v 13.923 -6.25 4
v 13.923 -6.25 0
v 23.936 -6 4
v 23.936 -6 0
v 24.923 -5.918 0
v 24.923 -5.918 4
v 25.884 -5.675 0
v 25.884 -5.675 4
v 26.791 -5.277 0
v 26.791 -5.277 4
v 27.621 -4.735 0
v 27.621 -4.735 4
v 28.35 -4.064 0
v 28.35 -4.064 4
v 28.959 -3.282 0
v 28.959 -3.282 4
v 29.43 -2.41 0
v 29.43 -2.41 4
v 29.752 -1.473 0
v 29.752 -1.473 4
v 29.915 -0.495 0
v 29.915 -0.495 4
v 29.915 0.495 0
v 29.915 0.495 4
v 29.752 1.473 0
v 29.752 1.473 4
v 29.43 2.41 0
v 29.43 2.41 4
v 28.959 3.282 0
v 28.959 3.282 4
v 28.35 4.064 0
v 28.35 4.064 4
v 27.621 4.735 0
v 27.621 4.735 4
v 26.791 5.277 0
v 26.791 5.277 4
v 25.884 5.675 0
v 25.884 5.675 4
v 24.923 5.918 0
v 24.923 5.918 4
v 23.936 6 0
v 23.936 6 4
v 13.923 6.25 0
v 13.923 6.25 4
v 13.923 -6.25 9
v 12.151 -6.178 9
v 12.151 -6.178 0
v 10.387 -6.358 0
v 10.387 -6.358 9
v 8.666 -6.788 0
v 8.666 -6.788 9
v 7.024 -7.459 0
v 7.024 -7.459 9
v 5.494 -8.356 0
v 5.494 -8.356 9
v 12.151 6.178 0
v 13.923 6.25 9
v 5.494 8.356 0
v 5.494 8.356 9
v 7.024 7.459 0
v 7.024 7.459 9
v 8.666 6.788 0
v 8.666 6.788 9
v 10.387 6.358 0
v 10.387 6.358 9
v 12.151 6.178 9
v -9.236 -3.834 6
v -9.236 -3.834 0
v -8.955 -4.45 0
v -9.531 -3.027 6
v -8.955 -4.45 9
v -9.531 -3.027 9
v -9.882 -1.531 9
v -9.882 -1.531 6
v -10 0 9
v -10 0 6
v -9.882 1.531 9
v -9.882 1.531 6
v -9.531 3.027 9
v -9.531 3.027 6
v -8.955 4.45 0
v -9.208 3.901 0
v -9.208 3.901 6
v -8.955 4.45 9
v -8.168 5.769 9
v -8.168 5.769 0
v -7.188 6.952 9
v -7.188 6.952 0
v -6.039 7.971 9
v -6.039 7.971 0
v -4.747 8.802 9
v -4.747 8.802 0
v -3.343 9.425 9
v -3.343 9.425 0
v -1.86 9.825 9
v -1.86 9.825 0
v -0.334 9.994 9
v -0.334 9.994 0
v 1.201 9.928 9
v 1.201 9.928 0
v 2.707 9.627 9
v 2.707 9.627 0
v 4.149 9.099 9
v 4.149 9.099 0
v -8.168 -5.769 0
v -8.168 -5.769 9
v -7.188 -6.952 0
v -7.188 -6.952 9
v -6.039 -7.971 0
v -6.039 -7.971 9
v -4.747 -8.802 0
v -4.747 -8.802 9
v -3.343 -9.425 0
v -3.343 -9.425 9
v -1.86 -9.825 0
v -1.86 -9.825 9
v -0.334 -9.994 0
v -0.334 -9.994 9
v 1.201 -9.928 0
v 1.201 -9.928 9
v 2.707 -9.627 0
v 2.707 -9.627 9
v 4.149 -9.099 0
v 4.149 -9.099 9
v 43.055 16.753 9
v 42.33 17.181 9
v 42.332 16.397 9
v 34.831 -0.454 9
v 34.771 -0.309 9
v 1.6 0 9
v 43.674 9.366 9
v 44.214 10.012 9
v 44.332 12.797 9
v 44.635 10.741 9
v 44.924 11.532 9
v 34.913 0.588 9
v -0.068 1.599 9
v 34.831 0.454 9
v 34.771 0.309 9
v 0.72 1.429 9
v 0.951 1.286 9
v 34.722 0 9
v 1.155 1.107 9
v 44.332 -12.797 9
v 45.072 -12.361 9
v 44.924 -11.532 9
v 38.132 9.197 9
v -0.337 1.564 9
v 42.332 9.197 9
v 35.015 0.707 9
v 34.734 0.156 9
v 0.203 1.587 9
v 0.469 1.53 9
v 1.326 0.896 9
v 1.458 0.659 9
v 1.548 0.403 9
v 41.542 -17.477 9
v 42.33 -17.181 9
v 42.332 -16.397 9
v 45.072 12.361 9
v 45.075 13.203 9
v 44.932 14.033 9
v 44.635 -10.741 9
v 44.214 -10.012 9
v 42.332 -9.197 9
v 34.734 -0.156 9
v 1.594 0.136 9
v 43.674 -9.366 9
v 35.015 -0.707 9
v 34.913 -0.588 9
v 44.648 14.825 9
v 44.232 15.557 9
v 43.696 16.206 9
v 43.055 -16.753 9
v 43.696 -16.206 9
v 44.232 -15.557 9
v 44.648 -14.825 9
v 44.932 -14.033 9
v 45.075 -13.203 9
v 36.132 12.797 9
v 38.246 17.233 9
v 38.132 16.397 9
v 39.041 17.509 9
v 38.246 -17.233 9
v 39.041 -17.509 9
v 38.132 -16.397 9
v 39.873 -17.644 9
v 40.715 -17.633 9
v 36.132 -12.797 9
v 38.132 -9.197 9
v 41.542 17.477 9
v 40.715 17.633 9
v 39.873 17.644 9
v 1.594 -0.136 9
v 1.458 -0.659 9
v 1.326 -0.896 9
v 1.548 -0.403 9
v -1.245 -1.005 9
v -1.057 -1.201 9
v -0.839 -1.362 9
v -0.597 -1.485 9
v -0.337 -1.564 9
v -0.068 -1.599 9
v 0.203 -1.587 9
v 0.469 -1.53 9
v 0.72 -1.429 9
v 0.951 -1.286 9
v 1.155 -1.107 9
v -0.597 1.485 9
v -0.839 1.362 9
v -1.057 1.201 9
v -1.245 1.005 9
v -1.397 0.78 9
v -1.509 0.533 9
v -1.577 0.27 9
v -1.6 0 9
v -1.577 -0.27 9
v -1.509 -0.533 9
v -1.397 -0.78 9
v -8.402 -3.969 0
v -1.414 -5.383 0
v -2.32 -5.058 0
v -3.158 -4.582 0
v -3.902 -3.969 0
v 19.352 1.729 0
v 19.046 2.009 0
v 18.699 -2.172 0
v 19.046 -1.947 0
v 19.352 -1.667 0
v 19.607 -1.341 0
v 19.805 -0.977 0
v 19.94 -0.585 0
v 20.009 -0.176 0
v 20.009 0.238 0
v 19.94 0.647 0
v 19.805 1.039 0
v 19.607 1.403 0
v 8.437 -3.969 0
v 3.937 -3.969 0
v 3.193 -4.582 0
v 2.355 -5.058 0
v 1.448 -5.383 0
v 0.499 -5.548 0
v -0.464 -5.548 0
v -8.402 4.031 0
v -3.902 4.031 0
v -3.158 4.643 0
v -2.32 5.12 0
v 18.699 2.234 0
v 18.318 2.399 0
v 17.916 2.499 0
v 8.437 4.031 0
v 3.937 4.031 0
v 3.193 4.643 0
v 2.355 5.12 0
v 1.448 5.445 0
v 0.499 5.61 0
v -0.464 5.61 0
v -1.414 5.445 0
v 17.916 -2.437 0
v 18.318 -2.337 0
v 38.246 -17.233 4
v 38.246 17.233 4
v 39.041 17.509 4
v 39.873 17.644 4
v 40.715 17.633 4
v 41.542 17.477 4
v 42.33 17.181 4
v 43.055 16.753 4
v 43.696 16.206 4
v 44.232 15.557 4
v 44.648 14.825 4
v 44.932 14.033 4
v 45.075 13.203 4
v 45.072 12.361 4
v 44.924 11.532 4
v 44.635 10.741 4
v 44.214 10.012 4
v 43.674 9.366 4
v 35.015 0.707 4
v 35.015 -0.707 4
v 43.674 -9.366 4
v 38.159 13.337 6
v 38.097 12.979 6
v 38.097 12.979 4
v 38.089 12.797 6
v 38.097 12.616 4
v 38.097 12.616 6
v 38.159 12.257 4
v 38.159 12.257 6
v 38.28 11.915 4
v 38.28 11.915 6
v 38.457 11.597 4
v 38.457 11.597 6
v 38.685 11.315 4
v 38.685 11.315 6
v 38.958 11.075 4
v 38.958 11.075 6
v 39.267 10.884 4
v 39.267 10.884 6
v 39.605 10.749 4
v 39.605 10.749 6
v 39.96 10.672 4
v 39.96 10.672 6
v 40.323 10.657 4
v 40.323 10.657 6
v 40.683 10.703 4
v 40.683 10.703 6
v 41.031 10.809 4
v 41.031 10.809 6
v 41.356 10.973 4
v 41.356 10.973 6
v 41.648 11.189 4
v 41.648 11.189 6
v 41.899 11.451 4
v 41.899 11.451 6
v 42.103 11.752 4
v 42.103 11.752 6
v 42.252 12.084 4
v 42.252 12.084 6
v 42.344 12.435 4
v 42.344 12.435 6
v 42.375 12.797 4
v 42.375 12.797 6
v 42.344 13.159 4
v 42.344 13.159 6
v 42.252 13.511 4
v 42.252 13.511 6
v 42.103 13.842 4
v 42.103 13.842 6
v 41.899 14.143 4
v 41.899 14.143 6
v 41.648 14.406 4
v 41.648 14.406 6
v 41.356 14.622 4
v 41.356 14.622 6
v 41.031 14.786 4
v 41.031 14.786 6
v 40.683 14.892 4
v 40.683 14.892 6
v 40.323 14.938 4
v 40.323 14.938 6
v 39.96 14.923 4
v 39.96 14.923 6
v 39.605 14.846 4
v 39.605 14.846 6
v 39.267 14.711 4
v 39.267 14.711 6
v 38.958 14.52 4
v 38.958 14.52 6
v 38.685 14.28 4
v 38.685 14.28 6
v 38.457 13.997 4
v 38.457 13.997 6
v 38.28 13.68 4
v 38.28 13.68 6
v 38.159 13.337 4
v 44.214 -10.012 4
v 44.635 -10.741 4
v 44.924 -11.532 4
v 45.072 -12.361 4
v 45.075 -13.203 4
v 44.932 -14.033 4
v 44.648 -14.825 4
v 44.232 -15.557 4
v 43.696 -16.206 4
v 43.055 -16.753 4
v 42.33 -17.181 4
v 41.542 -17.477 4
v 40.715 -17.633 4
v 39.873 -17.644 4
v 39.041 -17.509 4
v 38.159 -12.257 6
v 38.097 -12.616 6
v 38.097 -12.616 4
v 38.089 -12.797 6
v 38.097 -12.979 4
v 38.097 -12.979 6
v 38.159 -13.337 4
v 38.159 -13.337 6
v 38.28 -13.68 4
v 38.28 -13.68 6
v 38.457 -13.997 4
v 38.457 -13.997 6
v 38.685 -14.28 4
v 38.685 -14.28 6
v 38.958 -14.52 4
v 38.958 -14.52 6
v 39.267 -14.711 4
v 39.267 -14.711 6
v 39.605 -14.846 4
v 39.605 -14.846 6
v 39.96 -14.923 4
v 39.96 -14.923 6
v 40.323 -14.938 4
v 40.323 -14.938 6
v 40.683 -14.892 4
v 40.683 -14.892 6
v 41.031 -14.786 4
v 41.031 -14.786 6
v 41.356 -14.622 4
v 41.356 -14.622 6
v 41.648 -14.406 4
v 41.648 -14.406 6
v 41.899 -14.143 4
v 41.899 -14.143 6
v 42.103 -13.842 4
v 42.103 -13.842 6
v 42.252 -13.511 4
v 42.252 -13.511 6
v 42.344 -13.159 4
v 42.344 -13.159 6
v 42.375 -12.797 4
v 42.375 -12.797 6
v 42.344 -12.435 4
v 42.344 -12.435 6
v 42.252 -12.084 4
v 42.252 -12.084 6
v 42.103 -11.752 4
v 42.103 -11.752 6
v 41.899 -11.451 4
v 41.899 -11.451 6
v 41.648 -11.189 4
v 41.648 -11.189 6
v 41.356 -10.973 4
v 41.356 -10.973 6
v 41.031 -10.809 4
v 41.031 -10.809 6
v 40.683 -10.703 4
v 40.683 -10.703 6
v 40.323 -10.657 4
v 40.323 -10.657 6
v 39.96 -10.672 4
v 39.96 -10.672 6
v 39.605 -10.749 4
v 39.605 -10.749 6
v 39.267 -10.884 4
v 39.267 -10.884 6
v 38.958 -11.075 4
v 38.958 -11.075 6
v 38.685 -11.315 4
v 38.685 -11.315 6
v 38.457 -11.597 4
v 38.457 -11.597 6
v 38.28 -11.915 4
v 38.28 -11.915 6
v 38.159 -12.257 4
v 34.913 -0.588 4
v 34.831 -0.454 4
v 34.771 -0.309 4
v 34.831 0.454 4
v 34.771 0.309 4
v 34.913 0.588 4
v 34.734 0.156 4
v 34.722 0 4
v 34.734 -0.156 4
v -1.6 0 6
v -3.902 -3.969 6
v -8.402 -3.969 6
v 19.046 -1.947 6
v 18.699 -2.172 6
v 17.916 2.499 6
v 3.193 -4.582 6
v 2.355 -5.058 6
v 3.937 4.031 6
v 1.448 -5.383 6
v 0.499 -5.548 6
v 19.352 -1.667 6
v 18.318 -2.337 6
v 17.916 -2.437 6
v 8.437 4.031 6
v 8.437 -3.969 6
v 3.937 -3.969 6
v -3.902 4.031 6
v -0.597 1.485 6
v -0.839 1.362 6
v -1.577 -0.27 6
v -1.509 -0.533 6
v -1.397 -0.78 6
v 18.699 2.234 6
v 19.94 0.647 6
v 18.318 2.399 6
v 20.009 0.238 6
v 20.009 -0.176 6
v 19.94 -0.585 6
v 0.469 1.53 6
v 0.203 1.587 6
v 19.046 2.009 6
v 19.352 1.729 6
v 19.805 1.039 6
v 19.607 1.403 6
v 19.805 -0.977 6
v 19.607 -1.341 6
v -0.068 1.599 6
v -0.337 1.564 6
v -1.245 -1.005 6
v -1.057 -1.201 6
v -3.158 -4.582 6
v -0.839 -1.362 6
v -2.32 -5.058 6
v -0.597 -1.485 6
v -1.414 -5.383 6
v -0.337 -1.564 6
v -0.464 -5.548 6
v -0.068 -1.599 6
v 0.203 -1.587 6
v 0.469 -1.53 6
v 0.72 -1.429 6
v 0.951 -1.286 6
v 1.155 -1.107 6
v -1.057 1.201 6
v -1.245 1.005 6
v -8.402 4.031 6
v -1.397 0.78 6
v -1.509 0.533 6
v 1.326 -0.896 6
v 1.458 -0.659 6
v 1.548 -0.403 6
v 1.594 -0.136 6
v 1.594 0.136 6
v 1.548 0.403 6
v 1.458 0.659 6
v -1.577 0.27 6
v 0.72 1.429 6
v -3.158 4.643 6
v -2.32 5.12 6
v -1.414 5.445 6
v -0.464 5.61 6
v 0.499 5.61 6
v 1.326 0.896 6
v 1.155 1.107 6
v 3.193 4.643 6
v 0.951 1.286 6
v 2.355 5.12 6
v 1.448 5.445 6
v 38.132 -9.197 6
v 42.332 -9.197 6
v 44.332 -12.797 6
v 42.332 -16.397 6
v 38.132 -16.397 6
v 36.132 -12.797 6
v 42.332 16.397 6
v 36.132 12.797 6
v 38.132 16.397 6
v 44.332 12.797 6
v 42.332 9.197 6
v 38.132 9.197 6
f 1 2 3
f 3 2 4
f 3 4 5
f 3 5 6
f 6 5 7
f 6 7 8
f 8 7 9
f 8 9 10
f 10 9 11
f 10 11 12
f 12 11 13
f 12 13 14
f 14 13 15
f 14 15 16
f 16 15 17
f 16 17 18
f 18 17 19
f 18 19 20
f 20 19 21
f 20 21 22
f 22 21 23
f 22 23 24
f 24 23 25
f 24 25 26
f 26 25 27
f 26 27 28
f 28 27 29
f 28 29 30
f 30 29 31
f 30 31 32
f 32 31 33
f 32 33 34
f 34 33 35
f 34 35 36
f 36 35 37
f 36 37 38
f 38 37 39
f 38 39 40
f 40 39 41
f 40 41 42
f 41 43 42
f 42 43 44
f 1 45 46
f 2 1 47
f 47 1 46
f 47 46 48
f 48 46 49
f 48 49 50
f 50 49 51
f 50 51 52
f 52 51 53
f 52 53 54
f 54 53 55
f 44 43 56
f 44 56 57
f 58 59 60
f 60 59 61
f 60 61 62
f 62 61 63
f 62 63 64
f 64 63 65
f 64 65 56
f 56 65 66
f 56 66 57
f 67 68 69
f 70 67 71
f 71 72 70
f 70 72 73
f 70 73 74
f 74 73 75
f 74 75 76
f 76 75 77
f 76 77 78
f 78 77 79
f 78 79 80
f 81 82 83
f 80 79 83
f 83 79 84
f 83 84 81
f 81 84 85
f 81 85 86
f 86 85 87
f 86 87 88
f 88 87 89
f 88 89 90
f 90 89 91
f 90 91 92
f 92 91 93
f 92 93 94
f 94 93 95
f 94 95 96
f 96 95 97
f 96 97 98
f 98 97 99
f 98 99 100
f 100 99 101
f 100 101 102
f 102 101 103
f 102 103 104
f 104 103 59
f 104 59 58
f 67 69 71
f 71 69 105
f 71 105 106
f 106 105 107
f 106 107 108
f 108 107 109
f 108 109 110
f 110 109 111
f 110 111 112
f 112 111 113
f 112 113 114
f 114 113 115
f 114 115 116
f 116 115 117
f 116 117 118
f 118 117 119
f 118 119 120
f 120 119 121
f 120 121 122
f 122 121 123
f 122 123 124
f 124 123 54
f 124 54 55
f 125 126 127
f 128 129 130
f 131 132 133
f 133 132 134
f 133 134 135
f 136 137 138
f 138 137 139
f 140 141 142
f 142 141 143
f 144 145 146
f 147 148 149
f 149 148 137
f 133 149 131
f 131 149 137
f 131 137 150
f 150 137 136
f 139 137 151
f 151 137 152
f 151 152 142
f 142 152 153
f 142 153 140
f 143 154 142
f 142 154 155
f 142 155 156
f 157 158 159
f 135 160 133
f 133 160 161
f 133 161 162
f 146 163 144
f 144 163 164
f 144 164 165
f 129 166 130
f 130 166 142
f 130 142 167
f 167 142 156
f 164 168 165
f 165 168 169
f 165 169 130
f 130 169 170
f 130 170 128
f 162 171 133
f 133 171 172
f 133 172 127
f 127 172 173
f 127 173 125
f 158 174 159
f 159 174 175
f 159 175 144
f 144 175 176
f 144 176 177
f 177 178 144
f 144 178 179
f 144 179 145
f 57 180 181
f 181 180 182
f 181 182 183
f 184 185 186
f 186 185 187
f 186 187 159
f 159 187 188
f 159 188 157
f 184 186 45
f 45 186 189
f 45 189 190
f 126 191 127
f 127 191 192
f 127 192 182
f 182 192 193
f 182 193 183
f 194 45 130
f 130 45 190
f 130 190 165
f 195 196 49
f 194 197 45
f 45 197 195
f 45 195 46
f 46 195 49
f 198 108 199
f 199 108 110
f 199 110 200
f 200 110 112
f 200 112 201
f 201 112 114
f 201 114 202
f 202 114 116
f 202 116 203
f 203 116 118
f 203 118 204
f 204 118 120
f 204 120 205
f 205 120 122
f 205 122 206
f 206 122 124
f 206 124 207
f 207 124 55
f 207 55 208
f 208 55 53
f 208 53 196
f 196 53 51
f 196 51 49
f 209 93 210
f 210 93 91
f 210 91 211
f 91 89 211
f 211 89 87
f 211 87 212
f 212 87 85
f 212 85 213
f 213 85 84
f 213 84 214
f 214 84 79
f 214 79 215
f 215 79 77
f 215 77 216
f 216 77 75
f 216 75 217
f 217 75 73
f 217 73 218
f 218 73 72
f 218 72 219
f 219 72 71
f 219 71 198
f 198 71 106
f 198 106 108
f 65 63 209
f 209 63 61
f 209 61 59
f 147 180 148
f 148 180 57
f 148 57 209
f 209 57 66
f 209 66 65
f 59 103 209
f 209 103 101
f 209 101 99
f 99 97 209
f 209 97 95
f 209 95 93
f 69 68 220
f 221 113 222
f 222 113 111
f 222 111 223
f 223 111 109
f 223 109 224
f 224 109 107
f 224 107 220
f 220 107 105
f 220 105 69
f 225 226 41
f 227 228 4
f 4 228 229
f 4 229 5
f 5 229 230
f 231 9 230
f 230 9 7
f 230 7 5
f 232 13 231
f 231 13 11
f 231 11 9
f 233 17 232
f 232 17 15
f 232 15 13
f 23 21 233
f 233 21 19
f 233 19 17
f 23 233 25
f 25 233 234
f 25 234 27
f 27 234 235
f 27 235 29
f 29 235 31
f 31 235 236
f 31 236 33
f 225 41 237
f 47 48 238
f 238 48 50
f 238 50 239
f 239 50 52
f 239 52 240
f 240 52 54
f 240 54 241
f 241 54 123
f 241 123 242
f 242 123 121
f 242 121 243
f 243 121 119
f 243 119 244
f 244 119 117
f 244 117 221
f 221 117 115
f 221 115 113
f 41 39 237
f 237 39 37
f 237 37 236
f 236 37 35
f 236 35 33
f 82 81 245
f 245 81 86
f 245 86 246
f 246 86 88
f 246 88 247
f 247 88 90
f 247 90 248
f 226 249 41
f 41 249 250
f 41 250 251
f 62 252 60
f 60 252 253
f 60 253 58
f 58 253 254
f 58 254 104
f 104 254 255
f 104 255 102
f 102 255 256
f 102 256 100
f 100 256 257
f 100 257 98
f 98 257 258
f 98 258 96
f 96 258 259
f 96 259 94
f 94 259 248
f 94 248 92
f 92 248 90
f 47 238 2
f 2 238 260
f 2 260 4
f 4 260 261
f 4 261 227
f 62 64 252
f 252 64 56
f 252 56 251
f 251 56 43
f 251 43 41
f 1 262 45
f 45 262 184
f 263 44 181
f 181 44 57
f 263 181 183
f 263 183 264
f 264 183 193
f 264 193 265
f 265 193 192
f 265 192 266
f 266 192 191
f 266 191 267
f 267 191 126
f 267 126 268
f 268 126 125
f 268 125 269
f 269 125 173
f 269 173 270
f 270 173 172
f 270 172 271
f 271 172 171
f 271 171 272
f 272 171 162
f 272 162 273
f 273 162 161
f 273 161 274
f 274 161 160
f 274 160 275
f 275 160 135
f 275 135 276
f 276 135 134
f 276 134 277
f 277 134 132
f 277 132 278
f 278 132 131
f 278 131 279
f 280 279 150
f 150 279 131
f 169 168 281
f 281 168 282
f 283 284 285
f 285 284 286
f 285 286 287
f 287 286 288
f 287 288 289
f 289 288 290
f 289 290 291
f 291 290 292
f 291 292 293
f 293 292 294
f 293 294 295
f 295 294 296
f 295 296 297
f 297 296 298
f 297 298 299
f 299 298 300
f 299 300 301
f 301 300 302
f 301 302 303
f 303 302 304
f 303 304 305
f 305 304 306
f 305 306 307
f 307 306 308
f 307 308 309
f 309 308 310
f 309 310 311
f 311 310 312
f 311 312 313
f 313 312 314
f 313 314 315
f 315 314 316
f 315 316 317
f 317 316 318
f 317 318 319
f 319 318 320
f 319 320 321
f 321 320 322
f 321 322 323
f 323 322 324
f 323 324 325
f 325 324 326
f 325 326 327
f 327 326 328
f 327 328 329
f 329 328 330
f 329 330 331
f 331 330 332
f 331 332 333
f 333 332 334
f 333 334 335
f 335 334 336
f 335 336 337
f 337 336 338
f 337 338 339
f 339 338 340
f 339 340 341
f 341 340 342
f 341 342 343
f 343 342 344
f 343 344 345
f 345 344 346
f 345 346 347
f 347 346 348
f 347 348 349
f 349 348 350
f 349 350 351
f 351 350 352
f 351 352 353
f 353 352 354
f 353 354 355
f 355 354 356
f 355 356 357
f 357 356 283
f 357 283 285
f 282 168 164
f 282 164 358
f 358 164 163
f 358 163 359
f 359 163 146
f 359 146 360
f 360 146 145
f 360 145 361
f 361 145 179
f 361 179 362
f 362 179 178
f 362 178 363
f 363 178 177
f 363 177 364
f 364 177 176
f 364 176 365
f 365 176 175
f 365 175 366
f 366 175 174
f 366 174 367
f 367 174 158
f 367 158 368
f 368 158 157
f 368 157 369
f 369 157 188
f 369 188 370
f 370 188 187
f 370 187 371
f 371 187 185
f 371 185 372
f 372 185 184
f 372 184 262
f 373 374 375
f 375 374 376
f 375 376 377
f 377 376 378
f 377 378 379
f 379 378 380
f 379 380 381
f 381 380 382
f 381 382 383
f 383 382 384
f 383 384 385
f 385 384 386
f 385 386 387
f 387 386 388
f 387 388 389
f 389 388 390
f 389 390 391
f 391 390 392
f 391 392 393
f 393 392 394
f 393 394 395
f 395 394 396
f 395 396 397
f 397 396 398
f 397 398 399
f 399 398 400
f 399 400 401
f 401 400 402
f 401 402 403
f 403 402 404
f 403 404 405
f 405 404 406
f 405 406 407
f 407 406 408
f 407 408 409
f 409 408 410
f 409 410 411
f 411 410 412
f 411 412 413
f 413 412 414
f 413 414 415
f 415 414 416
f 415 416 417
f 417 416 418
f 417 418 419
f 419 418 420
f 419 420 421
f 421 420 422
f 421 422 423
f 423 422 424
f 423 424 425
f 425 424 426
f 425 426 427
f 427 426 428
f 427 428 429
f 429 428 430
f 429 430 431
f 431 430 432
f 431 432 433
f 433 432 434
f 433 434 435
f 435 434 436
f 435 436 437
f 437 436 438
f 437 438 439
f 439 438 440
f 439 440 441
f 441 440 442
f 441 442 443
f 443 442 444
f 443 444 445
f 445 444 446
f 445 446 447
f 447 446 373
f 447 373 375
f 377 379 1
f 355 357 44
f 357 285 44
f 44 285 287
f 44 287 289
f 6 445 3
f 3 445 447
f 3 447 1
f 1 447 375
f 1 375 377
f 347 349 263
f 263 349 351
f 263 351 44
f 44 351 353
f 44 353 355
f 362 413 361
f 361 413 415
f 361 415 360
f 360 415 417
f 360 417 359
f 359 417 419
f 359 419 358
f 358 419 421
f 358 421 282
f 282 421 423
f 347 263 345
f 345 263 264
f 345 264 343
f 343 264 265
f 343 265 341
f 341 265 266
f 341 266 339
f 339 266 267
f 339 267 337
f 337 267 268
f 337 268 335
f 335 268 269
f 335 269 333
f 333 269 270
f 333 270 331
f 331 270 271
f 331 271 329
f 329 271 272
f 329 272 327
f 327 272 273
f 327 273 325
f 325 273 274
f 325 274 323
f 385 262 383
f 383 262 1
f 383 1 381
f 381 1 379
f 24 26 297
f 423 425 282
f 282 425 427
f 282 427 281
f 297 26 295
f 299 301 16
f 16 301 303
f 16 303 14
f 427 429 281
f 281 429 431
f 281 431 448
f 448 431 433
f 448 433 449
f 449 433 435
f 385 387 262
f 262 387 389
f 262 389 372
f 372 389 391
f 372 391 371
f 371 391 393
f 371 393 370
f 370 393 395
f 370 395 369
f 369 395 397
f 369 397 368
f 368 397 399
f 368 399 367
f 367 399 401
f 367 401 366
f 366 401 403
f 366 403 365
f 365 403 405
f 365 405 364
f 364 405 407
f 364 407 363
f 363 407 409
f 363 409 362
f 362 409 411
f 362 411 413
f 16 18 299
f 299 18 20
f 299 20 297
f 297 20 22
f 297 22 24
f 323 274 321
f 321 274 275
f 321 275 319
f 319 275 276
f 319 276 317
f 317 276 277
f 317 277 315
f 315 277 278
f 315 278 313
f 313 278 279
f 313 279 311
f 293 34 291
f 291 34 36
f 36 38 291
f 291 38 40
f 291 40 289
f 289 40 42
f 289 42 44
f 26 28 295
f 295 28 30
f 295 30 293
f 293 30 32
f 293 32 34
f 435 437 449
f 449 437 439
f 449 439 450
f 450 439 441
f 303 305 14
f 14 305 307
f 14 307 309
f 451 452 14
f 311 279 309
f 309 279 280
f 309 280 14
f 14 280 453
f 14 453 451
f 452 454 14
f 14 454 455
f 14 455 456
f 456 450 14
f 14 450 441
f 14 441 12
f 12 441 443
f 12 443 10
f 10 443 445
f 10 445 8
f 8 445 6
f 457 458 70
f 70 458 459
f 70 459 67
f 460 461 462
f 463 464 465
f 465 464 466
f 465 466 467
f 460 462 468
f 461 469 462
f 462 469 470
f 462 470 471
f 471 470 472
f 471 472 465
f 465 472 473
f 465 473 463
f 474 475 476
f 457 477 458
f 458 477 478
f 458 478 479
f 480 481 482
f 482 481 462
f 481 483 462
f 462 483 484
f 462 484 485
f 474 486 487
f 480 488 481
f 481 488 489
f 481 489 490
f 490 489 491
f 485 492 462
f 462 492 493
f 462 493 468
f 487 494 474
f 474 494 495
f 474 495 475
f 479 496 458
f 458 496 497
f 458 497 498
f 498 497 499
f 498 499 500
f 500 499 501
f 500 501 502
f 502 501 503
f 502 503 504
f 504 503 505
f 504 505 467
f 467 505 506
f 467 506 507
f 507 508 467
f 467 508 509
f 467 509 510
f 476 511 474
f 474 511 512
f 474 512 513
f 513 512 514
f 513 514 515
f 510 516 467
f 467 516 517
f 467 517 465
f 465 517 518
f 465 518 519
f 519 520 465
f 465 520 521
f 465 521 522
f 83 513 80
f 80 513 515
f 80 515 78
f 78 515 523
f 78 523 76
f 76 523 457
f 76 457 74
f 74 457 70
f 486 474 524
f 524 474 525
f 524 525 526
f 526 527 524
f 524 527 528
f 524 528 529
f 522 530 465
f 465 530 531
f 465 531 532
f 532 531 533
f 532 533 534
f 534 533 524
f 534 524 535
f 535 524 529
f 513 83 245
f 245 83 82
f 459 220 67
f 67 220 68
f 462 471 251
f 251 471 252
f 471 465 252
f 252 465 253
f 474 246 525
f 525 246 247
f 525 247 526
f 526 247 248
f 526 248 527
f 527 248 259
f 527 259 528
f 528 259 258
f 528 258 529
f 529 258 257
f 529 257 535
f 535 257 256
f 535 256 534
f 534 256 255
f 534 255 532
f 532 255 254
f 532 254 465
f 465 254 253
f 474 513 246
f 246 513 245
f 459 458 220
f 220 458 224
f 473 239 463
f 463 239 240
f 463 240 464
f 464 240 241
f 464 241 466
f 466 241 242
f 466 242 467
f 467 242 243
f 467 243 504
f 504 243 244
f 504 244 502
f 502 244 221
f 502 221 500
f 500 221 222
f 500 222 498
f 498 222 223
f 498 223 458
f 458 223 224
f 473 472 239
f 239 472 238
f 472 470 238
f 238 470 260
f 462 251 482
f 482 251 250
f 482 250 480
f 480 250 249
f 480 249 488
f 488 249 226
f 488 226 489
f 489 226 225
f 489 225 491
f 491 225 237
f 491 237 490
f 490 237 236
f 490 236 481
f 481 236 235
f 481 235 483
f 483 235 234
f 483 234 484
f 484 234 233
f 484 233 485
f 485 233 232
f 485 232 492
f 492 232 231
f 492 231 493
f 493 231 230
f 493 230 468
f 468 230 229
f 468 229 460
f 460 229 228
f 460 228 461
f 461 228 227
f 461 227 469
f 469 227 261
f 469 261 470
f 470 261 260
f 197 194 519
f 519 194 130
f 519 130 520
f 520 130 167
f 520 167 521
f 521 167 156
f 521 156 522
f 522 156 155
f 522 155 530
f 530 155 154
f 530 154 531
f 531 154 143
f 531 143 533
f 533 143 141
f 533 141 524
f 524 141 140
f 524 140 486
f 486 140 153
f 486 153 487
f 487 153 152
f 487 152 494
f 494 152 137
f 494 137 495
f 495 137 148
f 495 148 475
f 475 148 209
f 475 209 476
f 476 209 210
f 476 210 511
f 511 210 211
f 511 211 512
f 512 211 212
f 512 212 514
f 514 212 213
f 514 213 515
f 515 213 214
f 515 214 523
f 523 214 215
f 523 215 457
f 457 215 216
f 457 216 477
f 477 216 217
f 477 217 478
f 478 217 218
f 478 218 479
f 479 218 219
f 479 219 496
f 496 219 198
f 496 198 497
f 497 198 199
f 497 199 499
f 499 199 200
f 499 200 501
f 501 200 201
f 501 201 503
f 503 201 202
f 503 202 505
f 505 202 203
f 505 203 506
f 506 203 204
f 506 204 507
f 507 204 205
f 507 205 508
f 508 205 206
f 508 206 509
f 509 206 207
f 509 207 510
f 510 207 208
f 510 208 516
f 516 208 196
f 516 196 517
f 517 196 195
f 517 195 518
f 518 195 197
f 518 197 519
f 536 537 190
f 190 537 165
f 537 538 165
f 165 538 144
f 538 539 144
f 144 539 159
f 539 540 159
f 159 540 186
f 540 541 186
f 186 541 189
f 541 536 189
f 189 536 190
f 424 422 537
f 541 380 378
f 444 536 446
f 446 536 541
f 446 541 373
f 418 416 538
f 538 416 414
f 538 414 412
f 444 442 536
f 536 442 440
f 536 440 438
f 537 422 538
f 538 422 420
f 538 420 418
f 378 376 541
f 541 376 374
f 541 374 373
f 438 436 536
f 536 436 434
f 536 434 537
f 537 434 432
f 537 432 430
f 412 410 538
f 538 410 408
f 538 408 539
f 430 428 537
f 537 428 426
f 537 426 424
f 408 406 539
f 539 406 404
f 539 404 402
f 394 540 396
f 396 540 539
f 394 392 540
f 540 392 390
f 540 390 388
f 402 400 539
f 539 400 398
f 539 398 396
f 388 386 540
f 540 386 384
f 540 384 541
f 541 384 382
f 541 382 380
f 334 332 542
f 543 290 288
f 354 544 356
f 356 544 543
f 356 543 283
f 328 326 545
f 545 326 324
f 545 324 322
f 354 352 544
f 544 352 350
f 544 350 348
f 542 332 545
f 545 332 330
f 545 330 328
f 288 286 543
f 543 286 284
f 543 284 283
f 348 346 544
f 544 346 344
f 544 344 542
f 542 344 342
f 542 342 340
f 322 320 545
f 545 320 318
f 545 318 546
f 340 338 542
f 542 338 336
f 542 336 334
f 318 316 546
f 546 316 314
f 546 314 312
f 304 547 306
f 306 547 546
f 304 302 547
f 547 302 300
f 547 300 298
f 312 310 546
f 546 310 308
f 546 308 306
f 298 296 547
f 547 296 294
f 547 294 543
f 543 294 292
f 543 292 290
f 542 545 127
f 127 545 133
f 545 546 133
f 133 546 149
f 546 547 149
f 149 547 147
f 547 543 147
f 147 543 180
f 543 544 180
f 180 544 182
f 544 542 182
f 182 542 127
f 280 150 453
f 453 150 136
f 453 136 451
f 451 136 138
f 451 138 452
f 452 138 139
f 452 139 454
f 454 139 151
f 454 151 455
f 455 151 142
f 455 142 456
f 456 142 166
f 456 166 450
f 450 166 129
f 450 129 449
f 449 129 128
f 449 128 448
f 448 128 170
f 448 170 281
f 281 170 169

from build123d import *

# Parameters (mm, degrees)
BOSS_EXTRUDE1_DEPTH = 9
BOSS_EXTRUDE2_START = -5
SKETCH6_R           = 2.142705637
BOSS_EXTRUDE2_DEPTH = 5
CUT_EXTRUDE1_DEPTH  = 6
SKETCH9_R           = 1.6
CUT_EXTRUDE2_DEPTH  = 6
CUT_EXTRUDE3_DEPTH  = 3
FILLET1_R           = 1


with BuildPart() as part:
    # Sketch2 → Boss-Extrude1 (new body)
    with BuildSketch(Plane.XY):
        with BuildLine():
            Line((13.923486695, -6.250000093), (23.935808117, -6))
            ThreePointArc((23.935808117, -6), (29.935808117, 0), (23.935808117, 6))
            Line((23.935808117, 6), (13.923486695, 6.250000093))
            ThreePointArc((13.923486695, 6.250000093), (9.518581948, 6.542551177), (5.493579732, 8.355871093))
            ThreePointArc((5.493579732, 8.355871093), (-10, 0), (5.493579732, -8.355871093))
            ThreePointArc((5.493579732, -8.355871093), (9.518581948, -6.542551177), (13.923486695, -6.250000093))
        make_face()
    extrude(amount=BOSS_EXTRUDE1_DEPTH)

    # Sketch6 → Boss-Extrude2 (add)
    with BuildSketch(Plane.XY.offset(9).offset(BOSS_EXTRUDE2_START)):
        with BuildLine():
            Line((38.246061815, 17.232807658), (13.923486695, 6.250000093))
            Line((13.923486695, 6.250000093), (23.935808117, 6))
            ThreePointArc((23.935808117, 6), (28.178449102, 4.242640389), (29.935808117, -8.43e-07))
            ThreePointArc((29.935808117, -8.43e-07), (28.178448506, -4.242640985), (23.935808117, -6))
            Line((23.935808117, -6), (13.923486695, -6.250000093))
            Line((13.923486695, -6.250000093), (38.246061815, -17.232807658))
            ThreePointArc((38.246061815, -17.232807658), (42.874608669, -16.875896473), (45.091866788, -12.797343053))
            ThreePointArc((45.091866788, -12.797343053), (44.723394897, -10.941104168), (43.673854661, -9.366347162))
            Line((43.673854661, -9.366347162), (34.3075075, 0))
            Line((34.3075075, 0), (43.673854661, 9.366347162))
            ThreePointArc((43.673854661, 9.366347162), (44.723394897, 10.941104168), (45.091866788, 12.797343053))
            ThreePointArc((45.091866788, 12.797343053), (42.874608669, 16.875896473), (38.246061815, 17.232807658))
        make_face()
        with Locations((40.232073655, -12.797343053)):
            Circle(SKETCH6_R, mode=Mode.SUBTRACT)
        with Locations((40.232073655, 12.797343053)):
            Circle(SKETCH6_R, mode=Mode.SUBTRACT)
    extrude(amount=BOSS_EXTRUDE2_DEPTH)

    # Sketch7 → Cut-Extrude1 (cut)
    with BuildSketch(Plane(origin=(0, 0, 0), x_dir=(-1, 0, 0), z_dir=(0, 0, -1))):
        with BuildLine():
            ThreePointArc((17.881488686, -2.43711799), (19.982635496, 0.030860156), (17.881488686, 2.498838303))
            Line((17.881488686, 2.498838303), (8.401819085, 4.030860156))
            Line((8.401819085, 4.030860156), (3.901819085, 4.030860156))
            ThreePointArc((3.901819085, 4.030860156), (-0.017364504, 5.630860156), (-3.936548092, 4.030860156))
            Line((-3.936548092, 4.030860156), (-8.436548092, 4.030860156))
            Line((-8.436548092, 4.030860156), (-17.916217693, 2.498838303))
            ThreePointArc((-17.916217693, 2.498838303), (-20.017364504, 0.030860156), (-17.916217693, -2.43711799))
            Line((-17.916217693, -2.43711799), (-8.436548092, -3.969139844))
            Line((-8.436548092, -3.969139844), (-3.936548092, -3.969139844))
            ThreePointArc((-3.936548092, -3.969139844), (-0.017364504, -5.569139844), (3.901819085, -3.969139844))
            Line((3.901819085, -3.969139844), (8.401819085, -3.969139844))
            Line((8.401819085, -3.969139844), (17.881488686, -2.43711799))
        make_face()
    extrude(amount=-CUT_EXTRUDE1_DEPTH, mode=Mode.SUBTRACT)

    # Sketch9 → Cut-Extrude2 (cut)
    with BuildSketch(Plane(origin=(0, 0, 6), x_dir=(-1, 0, 0), z_dir=(0, 0, -1))):
        Circle(SKETCH9_R)
    extrude(amount=-CUT_EXTRUDE2_DEPTH, mode=Mode.SUBTRACT)

    # Sketch10 → Cut-Extrude3 (cut)
    with BuildSketch(Plane.XY.offset(9)):
        Polygon((38.132073655, 9.197343053), (42.332073655, 9.197343053), (44.332073655, 12.797343053), (42.332073655, 16.397343053), (38.132073655, 16.397343053), (36.132073655, 12.797343053), align=None)
        Polygon((38.132073655, -9.197343053), (36.132073655, -12.797343053), (38.132073655, -16.397343053), (42.332073655, -16.397343053), (44.332073655, -12.797343053), (42.332073655, -9.197343053), align=None)
    extrude(amount=-CUT_EXTRUDE3_DEPTH, mode=Mode.SUBTRACT)

    # Fillet1
    fillet1_edges = [part.edges().sort_by_distance(p)[0] for p in [
        (34.3075075, 0, 6.5),
    ]]
    fillet(fillet1_edges, radius=FILLET1_R)


solid = part.part
